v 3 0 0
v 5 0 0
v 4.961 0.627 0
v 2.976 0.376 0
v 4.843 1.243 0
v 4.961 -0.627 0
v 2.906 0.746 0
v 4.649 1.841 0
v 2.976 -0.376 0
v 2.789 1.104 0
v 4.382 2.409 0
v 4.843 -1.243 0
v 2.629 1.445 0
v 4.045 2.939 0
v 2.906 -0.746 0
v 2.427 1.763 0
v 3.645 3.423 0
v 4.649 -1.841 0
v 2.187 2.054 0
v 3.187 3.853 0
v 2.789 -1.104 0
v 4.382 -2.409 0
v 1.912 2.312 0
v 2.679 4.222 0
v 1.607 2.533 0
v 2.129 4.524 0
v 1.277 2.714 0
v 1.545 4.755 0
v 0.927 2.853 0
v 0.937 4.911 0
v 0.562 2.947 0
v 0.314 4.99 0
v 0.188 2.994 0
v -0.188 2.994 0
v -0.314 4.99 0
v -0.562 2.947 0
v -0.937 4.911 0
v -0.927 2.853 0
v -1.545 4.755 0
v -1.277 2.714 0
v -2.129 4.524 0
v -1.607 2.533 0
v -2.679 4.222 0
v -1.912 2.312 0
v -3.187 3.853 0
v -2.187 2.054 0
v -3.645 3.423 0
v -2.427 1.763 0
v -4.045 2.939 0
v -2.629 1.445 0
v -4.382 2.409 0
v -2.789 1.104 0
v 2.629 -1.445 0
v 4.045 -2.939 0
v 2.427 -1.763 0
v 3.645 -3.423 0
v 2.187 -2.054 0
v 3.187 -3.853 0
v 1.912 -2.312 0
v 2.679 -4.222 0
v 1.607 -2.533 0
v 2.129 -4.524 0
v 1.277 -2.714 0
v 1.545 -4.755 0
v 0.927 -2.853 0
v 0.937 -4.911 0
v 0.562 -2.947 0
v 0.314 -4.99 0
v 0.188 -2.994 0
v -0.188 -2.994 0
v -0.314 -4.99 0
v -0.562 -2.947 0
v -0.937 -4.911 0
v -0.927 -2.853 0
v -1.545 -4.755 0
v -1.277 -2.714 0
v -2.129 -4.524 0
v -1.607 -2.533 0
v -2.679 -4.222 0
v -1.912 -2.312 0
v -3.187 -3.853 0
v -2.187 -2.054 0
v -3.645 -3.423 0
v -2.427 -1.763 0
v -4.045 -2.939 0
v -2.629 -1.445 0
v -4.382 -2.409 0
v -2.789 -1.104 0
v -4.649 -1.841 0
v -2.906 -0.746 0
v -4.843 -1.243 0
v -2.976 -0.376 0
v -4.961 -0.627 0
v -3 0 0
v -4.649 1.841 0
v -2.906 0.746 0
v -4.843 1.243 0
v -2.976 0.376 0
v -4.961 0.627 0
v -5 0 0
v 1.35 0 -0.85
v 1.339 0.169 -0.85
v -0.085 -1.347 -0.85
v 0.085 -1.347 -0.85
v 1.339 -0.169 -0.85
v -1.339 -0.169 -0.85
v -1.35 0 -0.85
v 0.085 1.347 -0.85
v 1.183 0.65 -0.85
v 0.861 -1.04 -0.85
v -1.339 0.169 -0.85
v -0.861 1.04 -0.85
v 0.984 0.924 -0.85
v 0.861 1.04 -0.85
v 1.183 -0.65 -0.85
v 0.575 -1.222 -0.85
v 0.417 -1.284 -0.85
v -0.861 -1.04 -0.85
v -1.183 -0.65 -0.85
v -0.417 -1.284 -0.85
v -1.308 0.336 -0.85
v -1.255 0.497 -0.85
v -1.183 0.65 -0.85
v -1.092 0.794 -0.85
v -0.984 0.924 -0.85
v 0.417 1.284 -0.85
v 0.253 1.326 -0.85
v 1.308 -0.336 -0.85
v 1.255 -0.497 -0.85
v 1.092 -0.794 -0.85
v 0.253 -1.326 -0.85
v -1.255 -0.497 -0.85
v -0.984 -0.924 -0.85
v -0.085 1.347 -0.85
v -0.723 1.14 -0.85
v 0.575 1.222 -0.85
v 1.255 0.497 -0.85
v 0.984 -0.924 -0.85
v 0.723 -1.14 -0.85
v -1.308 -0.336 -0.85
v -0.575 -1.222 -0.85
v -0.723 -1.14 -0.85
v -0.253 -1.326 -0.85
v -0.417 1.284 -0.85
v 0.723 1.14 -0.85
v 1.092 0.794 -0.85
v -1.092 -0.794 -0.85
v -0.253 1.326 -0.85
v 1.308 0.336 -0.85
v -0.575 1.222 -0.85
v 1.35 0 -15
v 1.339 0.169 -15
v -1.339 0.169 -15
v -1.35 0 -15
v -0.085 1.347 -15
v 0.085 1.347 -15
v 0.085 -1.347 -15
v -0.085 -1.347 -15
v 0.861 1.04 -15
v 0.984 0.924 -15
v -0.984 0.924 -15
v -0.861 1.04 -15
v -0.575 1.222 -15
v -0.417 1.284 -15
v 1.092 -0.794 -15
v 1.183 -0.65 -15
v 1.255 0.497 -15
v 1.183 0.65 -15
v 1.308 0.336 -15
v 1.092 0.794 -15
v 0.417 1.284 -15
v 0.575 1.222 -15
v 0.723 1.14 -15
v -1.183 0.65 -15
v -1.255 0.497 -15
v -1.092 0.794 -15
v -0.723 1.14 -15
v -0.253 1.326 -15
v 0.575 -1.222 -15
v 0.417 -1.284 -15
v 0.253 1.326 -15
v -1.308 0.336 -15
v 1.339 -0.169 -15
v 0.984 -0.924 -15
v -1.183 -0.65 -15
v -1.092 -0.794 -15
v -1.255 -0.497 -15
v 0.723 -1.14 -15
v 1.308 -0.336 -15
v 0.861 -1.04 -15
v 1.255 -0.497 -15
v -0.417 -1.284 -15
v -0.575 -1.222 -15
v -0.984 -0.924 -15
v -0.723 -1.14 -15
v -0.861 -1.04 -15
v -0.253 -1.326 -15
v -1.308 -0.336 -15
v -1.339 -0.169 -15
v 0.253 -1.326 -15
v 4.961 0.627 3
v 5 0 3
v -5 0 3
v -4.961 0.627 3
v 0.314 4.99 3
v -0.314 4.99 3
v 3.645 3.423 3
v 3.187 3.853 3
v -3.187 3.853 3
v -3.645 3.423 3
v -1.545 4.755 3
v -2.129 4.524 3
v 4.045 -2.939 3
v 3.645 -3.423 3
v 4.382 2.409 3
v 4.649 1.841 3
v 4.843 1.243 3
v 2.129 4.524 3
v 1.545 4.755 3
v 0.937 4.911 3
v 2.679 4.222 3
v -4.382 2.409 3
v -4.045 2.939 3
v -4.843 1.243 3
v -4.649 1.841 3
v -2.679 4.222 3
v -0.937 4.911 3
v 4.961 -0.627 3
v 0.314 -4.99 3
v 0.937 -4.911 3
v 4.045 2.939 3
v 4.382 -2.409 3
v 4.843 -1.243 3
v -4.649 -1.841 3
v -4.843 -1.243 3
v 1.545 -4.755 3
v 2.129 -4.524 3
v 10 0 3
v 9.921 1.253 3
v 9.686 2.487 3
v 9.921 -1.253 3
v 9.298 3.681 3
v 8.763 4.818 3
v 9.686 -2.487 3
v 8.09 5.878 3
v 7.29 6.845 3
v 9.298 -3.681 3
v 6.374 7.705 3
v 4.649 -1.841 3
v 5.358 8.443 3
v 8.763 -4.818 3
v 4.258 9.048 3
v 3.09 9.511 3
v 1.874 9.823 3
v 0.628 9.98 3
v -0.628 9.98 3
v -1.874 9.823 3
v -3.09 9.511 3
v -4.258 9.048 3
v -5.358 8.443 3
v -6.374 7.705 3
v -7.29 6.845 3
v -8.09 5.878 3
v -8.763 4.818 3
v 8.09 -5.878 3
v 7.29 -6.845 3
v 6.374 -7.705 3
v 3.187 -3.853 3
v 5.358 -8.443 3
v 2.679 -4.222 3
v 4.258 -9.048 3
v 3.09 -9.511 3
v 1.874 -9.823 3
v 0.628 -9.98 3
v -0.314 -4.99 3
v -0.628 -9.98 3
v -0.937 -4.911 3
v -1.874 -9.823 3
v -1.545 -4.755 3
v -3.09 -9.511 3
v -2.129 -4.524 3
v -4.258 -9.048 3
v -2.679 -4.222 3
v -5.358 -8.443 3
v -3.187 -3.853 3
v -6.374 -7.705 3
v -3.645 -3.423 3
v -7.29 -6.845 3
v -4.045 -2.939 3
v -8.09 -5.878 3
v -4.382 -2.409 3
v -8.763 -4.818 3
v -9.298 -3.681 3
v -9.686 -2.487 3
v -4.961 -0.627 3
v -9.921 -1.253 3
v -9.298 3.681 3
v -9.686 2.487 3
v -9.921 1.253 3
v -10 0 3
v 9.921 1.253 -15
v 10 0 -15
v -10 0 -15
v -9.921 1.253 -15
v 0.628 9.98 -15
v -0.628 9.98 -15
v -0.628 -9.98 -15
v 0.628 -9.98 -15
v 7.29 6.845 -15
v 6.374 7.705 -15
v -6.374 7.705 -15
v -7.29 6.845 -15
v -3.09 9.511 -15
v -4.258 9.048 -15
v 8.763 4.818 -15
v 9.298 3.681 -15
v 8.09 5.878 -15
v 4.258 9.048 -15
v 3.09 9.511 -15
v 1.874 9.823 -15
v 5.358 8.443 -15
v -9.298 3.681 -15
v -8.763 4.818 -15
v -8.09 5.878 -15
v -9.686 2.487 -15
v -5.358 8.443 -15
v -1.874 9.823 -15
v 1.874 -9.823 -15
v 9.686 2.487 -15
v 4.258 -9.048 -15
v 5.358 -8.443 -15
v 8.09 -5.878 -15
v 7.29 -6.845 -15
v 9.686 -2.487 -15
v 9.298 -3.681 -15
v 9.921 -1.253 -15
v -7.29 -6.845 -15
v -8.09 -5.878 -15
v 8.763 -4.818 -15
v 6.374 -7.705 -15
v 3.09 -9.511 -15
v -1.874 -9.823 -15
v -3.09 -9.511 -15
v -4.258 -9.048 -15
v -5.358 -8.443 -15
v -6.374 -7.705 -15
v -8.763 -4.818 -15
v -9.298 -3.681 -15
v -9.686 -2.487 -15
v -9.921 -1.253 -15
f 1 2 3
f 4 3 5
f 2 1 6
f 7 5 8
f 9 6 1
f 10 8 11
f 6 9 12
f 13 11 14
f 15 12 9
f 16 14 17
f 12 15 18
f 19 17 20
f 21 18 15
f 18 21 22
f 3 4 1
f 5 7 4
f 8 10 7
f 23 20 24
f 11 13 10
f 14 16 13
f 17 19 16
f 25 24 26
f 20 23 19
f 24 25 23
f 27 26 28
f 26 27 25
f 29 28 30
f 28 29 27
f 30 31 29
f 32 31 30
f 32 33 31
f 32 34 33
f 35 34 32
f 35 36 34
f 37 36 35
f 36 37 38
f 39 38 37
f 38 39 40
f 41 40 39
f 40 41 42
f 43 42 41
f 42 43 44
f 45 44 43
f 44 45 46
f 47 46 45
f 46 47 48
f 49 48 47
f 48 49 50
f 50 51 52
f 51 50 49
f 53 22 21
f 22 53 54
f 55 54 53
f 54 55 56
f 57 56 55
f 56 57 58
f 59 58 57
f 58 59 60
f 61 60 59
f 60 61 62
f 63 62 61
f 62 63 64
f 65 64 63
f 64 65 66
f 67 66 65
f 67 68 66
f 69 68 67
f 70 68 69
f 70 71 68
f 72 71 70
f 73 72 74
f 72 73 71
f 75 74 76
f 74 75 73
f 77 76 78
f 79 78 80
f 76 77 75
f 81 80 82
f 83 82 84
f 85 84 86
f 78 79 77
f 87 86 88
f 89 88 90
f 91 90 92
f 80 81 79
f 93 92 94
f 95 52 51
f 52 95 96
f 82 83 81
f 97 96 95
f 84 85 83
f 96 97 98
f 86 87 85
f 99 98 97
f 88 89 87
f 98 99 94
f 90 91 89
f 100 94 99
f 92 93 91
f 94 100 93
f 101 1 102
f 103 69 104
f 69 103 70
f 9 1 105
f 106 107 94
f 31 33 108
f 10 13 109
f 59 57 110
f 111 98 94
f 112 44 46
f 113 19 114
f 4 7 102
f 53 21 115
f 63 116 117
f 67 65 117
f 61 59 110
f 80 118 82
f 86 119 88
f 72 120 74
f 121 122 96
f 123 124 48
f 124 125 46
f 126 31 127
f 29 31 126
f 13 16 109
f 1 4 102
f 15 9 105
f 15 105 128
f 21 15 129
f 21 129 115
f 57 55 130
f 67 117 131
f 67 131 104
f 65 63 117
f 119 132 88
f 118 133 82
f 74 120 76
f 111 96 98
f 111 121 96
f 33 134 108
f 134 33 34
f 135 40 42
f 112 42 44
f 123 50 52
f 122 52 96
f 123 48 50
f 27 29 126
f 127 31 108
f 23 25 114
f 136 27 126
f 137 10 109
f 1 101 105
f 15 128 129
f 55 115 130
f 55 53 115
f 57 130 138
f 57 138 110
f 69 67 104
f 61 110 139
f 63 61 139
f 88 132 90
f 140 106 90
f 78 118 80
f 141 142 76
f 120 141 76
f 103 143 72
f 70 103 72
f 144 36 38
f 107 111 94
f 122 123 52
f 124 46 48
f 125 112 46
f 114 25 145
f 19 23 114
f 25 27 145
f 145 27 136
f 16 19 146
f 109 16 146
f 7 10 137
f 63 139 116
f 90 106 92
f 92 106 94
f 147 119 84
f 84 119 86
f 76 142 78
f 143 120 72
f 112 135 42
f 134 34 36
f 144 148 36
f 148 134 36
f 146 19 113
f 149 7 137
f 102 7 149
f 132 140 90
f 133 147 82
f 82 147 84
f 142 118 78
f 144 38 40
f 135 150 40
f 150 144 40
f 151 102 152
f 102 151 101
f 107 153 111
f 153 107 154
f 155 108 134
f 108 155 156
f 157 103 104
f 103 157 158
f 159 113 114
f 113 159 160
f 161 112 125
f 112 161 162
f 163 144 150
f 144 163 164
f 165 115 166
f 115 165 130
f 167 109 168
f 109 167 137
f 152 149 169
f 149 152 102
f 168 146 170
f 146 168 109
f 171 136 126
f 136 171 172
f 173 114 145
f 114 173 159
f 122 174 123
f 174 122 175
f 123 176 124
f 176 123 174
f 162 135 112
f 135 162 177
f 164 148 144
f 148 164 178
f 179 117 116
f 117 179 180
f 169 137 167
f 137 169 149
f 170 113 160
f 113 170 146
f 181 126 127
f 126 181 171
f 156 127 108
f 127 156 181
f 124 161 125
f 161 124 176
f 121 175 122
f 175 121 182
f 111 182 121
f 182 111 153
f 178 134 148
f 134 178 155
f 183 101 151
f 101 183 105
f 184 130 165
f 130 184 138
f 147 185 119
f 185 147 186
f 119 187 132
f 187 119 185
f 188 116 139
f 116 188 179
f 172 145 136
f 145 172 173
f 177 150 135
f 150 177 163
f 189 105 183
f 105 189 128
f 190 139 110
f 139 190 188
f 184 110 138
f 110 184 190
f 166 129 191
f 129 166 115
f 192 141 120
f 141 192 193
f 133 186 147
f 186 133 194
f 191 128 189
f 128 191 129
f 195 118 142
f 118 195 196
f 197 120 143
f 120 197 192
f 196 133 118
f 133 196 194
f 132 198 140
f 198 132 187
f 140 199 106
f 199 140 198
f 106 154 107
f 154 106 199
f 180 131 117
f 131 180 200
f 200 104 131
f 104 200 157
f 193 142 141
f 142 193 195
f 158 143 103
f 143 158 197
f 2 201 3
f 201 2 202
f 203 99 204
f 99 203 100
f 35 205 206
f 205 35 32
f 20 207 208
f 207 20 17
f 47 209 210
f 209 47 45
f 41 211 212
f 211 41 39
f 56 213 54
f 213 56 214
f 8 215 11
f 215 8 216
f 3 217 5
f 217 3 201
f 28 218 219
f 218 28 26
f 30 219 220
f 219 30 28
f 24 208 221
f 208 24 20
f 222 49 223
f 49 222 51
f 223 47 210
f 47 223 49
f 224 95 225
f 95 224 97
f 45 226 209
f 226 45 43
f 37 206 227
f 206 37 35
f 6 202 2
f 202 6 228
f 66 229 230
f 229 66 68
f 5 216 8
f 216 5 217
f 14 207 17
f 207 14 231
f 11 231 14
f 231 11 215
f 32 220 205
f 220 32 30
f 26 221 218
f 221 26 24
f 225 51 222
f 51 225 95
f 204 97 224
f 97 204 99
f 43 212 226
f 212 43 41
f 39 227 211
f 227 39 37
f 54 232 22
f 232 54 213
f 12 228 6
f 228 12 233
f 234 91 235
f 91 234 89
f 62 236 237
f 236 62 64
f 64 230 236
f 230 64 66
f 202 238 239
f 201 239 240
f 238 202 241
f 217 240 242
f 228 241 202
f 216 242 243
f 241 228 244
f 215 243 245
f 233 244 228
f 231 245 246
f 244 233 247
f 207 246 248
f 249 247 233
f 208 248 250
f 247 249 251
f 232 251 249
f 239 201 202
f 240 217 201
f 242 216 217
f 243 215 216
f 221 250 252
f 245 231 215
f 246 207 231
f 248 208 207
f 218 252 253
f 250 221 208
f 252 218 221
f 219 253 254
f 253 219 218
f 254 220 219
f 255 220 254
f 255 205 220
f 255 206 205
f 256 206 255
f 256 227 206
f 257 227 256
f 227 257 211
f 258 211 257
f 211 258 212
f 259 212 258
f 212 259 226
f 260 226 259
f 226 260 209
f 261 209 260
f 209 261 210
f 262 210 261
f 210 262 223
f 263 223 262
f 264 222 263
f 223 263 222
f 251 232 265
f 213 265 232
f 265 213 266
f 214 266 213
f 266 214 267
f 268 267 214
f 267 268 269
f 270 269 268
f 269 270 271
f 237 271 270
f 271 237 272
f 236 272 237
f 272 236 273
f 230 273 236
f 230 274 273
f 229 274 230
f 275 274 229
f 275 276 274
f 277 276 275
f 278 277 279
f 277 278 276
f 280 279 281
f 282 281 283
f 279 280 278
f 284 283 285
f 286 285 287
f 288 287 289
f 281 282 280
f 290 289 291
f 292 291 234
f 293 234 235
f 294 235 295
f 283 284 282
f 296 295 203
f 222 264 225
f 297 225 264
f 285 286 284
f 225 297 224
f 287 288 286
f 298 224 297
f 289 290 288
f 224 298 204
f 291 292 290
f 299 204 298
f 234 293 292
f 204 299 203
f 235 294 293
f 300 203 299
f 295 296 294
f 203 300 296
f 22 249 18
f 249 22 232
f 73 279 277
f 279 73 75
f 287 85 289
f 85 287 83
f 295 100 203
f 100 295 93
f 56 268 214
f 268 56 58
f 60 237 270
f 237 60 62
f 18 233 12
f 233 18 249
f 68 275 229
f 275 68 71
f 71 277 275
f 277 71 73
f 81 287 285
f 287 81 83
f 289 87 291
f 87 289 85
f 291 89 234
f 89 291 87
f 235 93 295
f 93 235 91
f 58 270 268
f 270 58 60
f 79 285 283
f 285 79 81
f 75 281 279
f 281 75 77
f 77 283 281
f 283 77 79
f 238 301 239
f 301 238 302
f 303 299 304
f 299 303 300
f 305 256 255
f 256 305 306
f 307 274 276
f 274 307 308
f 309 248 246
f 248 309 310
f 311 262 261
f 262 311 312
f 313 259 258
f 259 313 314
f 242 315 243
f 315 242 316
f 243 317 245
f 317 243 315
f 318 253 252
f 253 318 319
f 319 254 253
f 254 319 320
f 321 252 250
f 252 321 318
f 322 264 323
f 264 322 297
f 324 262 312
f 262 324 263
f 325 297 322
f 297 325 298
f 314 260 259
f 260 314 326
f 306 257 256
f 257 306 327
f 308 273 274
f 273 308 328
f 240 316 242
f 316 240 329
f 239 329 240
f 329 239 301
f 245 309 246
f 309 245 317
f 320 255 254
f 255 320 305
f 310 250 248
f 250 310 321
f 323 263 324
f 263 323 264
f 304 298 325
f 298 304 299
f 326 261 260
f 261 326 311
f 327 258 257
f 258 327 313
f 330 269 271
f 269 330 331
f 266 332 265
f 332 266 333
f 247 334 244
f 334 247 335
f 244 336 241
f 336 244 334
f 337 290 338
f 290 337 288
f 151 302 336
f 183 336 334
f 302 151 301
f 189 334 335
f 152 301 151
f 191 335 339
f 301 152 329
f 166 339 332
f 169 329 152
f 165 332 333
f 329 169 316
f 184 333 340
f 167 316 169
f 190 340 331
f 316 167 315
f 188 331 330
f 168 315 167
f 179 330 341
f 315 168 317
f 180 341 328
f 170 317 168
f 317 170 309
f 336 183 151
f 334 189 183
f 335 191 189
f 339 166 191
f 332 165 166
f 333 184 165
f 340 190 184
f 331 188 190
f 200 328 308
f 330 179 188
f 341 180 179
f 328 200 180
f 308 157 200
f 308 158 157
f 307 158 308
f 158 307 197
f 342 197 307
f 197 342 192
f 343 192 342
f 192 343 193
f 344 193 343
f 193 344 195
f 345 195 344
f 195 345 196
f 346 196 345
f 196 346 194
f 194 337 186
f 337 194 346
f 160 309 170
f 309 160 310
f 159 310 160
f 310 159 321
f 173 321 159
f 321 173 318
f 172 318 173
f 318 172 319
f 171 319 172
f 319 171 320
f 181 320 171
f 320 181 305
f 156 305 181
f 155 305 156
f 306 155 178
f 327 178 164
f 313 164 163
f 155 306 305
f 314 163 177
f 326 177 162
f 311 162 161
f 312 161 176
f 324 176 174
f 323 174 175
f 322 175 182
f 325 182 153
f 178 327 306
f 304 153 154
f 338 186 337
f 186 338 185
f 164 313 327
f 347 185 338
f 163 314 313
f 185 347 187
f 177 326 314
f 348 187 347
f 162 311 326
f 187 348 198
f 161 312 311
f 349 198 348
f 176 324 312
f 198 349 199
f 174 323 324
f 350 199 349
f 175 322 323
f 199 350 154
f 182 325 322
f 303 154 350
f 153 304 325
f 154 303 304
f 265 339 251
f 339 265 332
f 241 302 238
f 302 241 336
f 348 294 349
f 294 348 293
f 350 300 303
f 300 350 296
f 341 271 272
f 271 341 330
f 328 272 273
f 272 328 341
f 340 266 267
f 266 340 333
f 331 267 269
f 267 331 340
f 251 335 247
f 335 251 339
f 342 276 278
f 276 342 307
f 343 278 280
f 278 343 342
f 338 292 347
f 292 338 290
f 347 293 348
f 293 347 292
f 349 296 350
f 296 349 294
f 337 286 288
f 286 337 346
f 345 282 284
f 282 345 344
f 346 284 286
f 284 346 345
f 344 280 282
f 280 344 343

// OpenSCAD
$fn = 50;

difference() {
	union() {
		translate(v = [0, 0, -15.0]) {
			cylinder(h = 18, r = 10.0);
		}
	}
	union() {
		translate(v = [0, 0, 0]) {
			rotate(a = [0, 0, 0]) {
				difference() {
					union() {
						translate(v = [0, 0, -18.0]) {
							cylinder(h = 18, r = 1.0);
						}
						translate(v = [0, 0, -0.85]) {
							cylinder(h = 0.85, r1 = 1.35, r2 = 3.0);
						}
						translate(v = [0, 0, -18.0]) {
							cylinder(h = 18, r = 1.35);
						}
						translate(v = [0, 0, -18.0]) {
							cylinder(h = 18, r = 1.0);
						}
					}
					union();
				}
			}
		}
		#cylinder(h = 3, r = 5.0);
	}
}
